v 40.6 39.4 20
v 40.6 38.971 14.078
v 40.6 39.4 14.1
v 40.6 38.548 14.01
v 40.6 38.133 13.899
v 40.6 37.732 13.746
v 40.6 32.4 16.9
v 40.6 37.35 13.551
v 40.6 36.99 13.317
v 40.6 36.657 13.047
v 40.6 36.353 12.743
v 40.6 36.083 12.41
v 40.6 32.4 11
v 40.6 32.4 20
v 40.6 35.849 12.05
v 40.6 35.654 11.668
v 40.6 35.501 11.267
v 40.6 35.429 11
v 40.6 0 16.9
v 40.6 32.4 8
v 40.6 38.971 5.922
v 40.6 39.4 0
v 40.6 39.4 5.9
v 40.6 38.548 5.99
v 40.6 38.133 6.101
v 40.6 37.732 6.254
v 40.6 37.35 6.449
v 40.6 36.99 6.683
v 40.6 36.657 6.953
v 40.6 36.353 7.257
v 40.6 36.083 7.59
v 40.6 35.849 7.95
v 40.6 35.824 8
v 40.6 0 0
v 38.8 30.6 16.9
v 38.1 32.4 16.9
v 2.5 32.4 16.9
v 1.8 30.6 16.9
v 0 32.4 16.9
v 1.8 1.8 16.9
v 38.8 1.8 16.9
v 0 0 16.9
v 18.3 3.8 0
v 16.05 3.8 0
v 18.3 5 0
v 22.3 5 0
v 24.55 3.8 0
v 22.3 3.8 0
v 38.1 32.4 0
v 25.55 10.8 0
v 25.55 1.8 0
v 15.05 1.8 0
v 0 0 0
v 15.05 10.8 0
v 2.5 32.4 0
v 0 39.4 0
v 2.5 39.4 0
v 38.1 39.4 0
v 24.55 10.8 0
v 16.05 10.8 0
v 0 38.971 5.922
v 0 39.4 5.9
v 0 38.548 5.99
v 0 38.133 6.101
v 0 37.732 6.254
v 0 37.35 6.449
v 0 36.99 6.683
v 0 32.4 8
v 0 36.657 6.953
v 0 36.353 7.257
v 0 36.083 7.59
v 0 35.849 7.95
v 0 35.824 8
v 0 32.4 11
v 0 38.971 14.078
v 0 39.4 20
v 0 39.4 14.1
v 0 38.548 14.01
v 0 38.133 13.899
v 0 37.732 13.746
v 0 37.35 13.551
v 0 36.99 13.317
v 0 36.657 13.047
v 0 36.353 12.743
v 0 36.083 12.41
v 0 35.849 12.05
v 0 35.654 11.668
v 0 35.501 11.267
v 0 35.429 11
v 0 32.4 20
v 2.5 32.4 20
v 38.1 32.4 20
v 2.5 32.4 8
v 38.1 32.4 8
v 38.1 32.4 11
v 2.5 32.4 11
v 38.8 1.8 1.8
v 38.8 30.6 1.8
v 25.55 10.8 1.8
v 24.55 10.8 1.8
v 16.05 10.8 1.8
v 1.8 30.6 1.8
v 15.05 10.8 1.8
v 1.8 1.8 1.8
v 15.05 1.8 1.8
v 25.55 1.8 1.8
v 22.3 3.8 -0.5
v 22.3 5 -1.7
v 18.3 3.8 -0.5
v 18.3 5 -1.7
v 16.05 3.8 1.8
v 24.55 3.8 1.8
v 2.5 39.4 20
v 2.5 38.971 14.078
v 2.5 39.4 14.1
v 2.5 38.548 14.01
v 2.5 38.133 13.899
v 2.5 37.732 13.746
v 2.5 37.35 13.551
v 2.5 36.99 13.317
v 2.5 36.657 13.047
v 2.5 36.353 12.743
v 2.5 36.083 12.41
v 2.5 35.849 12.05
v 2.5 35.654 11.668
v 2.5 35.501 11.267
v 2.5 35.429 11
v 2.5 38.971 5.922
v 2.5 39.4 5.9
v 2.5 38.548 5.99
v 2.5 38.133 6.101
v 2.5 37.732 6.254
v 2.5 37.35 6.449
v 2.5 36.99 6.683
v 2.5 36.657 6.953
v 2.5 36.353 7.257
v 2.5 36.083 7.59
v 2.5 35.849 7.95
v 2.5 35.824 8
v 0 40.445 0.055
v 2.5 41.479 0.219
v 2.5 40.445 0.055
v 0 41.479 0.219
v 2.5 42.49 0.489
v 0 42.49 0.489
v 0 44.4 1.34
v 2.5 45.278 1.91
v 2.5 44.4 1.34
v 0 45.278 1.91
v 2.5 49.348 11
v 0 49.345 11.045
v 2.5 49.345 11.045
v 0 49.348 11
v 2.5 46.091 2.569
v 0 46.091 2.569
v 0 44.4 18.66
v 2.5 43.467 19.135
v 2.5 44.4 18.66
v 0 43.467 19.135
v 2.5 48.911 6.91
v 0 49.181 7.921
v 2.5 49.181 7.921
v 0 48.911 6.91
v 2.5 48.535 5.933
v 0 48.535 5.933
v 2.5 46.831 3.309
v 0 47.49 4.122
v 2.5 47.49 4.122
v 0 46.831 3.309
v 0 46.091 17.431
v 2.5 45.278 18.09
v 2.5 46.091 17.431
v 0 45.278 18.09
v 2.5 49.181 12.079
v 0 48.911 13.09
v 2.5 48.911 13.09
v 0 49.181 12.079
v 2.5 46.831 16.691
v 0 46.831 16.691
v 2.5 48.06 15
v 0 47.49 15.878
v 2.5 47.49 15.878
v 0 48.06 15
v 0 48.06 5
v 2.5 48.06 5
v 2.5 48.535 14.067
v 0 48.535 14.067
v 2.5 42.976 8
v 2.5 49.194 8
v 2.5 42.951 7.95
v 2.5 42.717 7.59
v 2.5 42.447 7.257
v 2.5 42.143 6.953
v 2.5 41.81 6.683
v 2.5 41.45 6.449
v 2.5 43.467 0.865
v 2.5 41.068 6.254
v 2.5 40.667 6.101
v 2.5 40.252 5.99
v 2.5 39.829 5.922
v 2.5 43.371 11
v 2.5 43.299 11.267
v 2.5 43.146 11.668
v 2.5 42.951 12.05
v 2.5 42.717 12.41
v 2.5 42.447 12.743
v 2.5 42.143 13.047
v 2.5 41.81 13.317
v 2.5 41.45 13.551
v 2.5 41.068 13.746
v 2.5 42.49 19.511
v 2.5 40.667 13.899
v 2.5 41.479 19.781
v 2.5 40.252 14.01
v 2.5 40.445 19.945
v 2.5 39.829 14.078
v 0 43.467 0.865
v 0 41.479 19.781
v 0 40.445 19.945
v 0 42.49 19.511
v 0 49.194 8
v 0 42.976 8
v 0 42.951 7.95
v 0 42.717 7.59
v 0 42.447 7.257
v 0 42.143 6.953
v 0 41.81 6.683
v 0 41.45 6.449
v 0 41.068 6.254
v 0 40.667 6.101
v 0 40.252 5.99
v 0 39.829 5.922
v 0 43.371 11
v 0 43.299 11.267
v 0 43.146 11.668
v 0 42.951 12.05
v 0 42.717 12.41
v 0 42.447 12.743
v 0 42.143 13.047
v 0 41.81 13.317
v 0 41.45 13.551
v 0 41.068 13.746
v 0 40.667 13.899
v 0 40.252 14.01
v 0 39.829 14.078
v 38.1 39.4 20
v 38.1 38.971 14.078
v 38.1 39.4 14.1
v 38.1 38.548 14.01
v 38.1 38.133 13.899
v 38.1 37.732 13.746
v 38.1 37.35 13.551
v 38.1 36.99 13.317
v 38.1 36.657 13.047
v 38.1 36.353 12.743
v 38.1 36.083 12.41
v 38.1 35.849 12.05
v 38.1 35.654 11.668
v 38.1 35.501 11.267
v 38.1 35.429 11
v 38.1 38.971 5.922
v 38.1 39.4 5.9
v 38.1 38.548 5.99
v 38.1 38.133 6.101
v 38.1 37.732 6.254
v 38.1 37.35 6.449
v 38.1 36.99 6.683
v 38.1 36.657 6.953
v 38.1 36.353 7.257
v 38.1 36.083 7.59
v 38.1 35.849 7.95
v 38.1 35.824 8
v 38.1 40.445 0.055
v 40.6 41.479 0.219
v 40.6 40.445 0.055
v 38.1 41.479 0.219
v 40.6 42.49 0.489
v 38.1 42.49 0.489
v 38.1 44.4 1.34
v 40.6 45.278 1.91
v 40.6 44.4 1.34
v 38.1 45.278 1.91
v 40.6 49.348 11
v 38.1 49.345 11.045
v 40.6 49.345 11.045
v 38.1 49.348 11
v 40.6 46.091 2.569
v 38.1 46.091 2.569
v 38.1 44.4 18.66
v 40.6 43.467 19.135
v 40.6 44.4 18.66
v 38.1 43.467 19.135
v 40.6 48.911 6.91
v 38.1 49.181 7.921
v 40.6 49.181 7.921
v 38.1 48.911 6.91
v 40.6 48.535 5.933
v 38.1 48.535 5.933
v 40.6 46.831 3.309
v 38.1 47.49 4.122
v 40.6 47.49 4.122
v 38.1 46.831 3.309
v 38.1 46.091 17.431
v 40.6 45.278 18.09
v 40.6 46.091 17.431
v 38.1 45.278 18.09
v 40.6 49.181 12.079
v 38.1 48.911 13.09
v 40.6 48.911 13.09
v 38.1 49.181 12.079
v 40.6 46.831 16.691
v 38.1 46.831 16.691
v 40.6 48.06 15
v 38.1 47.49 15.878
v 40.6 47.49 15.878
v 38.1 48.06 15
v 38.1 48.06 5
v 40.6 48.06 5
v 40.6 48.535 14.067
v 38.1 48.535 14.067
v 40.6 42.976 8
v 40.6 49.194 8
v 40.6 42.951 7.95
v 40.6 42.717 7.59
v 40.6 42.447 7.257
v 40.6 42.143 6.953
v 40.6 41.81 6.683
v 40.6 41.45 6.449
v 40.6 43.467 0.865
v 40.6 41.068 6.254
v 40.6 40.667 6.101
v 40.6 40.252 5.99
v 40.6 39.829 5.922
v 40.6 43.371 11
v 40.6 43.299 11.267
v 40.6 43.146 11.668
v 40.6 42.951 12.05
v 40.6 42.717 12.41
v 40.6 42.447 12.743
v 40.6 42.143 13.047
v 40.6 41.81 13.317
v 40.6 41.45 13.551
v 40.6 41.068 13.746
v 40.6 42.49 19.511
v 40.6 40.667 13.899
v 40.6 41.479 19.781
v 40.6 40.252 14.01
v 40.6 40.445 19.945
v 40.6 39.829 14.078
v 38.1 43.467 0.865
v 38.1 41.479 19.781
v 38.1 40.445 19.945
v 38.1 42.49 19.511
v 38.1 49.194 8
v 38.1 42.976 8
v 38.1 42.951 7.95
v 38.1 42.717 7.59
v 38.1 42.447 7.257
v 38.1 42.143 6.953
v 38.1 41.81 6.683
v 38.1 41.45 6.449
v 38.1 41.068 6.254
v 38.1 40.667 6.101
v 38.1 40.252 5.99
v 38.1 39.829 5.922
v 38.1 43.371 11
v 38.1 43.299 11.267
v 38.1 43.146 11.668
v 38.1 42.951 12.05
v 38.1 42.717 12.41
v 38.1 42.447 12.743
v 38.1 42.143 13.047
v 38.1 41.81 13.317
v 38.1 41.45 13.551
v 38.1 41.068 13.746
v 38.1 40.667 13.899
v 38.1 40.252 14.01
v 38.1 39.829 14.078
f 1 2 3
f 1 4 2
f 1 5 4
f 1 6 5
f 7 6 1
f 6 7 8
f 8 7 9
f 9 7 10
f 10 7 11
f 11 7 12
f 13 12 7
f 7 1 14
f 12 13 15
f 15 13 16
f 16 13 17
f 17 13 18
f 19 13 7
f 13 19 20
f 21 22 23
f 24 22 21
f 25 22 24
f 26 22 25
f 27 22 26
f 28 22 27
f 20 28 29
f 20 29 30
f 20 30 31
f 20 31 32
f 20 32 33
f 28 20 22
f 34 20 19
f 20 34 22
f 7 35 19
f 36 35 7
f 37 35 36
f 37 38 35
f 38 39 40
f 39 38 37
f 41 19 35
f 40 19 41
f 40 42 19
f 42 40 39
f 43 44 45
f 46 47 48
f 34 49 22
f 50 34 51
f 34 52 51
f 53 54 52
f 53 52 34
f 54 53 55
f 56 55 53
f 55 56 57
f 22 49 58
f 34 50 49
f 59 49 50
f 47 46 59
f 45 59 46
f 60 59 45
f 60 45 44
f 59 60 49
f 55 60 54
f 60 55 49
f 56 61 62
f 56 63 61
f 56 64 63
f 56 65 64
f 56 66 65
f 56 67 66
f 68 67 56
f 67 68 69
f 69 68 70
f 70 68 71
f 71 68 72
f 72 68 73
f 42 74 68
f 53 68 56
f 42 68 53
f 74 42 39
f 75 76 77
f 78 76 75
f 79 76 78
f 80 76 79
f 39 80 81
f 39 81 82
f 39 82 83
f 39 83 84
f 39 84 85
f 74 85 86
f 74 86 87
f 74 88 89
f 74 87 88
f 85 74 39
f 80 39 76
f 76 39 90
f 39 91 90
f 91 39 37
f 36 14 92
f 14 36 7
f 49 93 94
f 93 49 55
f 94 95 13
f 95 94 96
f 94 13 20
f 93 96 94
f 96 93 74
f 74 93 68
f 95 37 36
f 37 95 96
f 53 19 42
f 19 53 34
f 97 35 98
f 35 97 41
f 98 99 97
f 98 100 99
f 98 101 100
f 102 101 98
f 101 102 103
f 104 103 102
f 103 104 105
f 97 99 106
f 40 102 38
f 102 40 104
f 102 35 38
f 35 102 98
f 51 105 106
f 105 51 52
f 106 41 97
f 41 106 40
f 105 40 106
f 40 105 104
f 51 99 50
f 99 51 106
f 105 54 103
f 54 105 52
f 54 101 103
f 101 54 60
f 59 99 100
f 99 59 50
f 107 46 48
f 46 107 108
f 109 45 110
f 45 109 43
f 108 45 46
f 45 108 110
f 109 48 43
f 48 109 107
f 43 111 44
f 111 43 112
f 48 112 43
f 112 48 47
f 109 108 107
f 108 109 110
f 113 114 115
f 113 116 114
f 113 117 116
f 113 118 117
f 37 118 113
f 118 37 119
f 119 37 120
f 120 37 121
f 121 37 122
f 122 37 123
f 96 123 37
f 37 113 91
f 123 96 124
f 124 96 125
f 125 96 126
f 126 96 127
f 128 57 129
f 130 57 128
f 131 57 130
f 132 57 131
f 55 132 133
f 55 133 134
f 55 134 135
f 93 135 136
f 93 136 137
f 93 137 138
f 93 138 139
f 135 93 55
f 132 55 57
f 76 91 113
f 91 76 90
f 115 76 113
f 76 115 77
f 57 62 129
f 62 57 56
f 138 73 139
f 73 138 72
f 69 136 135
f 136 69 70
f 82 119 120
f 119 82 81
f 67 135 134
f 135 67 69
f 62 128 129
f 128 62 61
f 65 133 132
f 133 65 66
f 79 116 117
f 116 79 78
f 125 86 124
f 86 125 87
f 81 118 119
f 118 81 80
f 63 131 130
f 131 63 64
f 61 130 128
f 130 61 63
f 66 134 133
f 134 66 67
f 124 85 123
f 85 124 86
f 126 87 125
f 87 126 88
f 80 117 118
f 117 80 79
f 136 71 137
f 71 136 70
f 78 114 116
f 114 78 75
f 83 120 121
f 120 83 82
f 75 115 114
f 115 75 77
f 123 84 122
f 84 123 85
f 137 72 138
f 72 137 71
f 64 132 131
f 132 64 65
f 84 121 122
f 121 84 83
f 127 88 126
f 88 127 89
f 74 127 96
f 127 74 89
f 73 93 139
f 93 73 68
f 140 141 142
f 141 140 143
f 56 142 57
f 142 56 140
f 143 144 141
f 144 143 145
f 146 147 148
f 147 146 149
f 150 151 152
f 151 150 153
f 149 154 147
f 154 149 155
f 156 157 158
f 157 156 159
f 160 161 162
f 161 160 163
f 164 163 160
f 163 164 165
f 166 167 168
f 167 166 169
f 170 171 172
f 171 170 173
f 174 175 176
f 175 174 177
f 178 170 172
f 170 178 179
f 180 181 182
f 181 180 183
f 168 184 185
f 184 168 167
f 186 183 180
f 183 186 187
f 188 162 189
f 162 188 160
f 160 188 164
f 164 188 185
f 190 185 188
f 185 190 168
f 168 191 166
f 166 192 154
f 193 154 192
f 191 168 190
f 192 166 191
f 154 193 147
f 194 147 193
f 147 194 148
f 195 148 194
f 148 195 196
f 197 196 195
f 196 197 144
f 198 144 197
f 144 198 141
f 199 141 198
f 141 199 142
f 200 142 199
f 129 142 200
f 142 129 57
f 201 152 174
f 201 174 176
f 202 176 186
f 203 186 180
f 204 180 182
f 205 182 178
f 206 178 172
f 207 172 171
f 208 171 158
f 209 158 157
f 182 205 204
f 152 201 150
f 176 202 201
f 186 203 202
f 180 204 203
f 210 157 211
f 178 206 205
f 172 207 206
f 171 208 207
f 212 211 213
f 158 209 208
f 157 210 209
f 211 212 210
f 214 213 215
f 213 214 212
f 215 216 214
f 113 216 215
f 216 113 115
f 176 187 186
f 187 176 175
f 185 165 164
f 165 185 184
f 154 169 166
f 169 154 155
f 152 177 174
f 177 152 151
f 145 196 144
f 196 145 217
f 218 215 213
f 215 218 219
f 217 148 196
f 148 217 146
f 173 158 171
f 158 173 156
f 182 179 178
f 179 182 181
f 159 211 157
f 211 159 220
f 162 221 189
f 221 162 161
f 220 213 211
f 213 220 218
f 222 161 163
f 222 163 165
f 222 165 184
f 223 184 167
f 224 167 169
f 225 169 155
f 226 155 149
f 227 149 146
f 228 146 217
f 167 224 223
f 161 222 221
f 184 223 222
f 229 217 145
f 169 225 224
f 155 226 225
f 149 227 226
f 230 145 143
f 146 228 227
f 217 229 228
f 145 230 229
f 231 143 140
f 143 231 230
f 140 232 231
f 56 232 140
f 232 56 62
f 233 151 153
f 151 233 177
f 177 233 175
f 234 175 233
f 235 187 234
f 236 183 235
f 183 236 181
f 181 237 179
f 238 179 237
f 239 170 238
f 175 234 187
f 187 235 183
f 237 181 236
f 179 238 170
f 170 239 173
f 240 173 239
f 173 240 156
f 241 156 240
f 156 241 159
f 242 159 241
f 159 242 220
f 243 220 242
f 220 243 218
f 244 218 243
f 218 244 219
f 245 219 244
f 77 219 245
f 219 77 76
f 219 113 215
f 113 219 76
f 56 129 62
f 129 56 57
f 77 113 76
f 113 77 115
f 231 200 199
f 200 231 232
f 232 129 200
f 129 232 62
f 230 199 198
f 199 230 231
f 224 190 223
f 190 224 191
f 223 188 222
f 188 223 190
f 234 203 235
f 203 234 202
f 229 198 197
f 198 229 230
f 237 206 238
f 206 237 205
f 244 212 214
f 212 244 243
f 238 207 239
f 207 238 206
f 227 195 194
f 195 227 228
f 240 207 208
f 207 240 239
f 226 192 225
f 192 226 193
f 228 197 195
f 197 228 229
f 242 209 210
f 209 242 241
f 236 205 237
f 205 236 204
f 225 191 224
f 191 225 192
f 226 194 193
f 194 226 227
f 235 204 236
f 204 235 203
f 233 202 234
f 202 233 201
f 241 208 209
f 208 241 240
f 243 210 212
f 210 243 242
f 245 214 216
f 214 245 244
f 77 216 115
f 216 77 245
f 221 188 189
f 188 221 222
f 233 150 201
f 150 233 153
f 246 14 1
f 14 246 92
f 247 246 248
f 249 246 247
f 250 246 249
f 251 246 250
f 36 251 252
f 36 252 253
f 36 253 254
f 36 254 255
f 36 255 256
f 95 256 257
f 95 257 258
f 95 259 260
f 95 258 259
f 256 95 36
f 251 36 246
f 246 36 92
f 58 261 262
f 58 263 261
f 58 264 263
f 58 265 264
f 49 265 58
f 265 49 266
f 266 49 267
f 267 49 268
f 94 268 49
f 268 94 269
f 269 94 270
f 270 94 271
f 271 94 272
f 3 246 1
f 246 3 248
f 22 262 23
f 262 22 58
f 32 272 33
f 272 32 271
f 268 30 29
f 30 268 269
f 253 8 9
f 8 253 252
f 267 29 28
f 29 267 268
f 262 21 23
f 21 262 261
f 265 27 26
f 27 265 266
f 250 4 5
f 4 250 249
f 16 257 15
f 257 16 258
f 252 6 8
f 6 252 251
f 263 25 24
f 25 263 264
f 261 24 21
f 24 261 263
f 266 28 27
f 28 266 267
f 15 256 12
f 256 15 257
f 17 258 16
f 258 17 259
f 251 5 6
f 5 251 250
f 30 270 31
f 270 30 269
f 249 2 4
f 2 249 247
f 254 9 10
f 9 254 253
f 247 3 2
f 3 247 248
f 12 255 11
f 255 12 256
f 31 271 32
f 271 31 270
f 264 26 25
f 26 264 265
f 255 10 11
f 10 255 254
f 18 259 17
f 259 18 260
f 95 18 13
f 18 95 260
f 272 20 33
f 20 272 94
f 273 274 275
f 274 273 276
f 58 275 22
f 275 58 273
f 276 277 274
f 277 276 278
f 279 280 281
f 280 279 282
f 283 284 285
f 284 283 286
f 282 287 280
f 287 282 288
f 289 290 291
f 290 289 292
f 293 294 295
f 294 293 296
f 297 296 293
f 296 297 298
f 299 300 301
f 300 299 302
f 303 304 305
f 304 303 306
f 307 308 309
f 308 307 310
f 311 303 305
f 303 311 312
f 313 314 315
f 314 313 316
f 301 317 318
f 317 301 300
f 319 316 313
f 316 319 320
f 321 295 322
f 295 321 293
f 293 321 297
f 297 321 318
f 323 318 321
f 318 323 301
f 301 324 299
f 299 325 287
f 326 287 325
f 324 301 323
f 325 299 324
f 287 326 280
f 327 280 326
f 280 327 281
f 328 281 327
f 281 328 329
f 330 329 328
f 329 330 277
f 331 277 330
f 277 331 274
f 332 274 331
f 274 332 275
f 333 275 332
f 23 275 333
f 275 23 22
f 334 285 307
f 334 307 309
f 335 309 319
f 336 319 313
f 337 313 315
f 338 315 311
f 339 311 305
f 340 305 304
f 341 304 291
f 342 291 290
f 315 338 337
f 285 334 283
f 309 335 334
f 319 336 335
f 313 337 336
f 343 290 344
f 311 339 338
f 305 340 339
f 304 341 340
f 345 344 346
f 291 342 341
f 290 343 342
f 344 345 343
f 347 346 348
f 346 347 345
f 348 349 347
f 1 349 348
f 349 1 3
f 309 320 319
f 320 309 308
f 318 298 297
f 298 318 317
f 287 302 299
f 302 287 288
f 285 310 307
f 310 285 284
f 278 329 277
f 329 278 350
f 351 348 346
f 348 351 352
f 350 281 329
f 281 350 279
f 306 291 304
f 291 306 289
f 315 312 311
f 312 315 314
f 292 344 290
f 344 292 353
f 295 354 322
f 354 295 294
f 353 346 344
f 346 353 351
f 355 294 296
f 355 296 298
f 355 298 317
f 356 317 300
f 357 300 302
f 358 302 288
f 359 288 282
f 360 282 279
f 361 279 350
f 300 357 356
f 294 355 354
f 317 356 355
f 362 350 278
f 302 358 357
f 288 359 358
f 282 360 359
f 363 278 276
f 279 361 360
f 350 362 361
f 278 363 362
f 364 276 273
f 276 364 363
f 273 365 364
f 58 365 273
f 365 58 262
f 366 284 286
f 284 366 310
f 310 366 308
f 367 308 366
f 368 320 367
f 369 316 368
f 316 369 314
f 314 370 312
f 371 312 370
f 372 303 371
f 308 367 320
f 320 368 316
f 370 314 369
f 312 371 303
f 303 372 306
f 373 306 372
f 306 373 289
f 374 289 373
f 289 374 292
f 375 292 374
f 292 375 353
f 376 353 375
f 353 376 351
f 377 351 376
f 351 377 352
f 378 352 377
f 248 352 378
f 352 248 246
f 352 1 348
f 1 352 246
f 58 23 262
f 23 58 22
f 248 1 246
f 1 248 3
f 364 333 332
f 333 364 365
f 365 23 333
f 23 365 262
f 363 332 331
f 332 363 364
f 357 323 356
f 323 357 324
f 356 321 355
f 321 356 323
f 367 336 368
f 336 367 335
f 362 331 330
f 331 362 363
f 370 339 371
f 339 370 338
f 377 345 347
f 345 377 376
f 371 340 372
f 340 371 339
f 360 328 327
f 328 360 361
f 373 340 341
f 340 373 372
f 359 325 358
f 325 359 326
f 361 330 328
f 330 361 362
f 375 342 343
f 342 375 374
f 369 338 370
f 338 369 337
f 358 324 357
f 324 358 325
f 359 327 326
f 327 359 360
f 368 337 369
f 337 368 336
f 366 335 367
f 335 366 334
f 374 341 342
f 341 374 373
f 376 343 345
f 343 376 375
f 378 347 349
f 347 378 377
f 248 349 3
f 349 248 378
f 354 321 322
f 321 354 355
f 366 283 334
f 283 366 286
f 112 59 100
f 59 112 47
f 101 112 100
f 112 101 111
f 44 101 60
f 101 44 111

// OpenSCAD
// drawer for hook depot for playmobile mobile crane 3761

// Playmobil 3761 Drawer
// Dimensions: 40.6mm x 32.4mm x 16.9mm
// Wall thickness: 1.8mm

// Main dimensions
outer_w = 40.6;
outer_d = 32.4;
outer_h = 16.9;
wall_thickness = 1.8;

// Internal dimensions
inner_w = outer_w - 2 * wall_thickness;
inner_d = outer_d - 2 * wall_thickness;
inner_h = outer_h - wall_thickness+1;

// Nodge dimensions
nodge_hole_width = 10.5;
nodge_hole_depth = 9;
nodge_from_back = 4.5;
nodge_height = 1.7;
nodge_width = 4;
nodge_depth = 1.2;
nodge_side_spacing = 2;
nodge_other_spacing = 1.4;

module drawer() {
    // Main drawer body
    difference() {
        // Outer shell
        cube([outer_w, outer_d, outer_h]);
        
        // Cut out inner space
        translate([wall_thickness, wall_thickness, wall_thickness])
            cube([inner_w, inner_d, inner_h]);
        
        // Cut out nodge area
        translate([outer_w/2-nodge_hole_width/2,
                  wall_thickness,
                  -0.1])
            cube([nodge_hole_width, nodge_hole_depth, wall_thickness+1]);
    }
    
    // Add nodge
    translate([outer_w/2-nodge_hole_width/2+nodge_side_spacing/2,
                  wall_thickness+nodge_side_spacing,
                  0])
        cube([nodge_hole_width-nodge_side_spacing,nodge_hole_depth-nodge_side_spacing, wall_thickness]);
    
    // Add nodgebloeppel with diagonal cut
    difference() {
        translate([outer_w/2-nodge_width/2,
                      wall_thickness+nodge_side_spacing,
                      -nodge_height])
            cube([nodge_width, nodge_depth, nodge_height]);
            
        // Diagonal cut on y-axis
        translate([outer_w/2-nodge_width/2-0.1,
                  wall_thickness+nodge_side_spacing+nodge_height-.4,
                  -nodge_height-0.1])
            rotate([0, 45, 270])
                cube([nodge_width, nodge_depth+7, nodge_width]);
    }    
    // Add drum roll mounts at the back
    for (x = [0+2.5/2, outer_w-2.5/2]) {
        // Add connecting piece to fill the gap
        difference() {
            // Main connecting piece
            translate([x-1.25, outer_d, 0])
                cube([2.5, 7, 20]);  // 2.5mm wide, 6mm long, 10mm tall
            
            // Cut out the inner hole in the connecting piece
            translate([x-1.26, outer_d+7, 10])  // Slight offset to ensure clean cut
                rotate([0, 90, 0])
                    cylinder(h=3.6, d=8.2, $fn=60);

            translate([x-1.3, outer_d, 8])
                cube([3, 10, 3]);
        }
        // Add the main mount
        translate([x, outer_d+7, 10])  // Position at the front edge
            rotate([0, 90, 0])  // Rotate 90 degrees around Y-axis 
            difference() {
                // Main mount (half cylinder)
                difference() {
                    cylinder(h=2.5, d=20, $fn=60, center=true);
                    // Cut in half horizontally
                    translate([-10, -10, -10])
                        cube([20, 10, 20]);
                }

                // Inner hole
                cylinder(h=3.5, d=8.2, $fn=60, center=true);

                // slide in
                translate([-1, 0, -2])
                cube([3, 10, 42]);
            }
        }
    
}

// Render the drawer
drawer();
